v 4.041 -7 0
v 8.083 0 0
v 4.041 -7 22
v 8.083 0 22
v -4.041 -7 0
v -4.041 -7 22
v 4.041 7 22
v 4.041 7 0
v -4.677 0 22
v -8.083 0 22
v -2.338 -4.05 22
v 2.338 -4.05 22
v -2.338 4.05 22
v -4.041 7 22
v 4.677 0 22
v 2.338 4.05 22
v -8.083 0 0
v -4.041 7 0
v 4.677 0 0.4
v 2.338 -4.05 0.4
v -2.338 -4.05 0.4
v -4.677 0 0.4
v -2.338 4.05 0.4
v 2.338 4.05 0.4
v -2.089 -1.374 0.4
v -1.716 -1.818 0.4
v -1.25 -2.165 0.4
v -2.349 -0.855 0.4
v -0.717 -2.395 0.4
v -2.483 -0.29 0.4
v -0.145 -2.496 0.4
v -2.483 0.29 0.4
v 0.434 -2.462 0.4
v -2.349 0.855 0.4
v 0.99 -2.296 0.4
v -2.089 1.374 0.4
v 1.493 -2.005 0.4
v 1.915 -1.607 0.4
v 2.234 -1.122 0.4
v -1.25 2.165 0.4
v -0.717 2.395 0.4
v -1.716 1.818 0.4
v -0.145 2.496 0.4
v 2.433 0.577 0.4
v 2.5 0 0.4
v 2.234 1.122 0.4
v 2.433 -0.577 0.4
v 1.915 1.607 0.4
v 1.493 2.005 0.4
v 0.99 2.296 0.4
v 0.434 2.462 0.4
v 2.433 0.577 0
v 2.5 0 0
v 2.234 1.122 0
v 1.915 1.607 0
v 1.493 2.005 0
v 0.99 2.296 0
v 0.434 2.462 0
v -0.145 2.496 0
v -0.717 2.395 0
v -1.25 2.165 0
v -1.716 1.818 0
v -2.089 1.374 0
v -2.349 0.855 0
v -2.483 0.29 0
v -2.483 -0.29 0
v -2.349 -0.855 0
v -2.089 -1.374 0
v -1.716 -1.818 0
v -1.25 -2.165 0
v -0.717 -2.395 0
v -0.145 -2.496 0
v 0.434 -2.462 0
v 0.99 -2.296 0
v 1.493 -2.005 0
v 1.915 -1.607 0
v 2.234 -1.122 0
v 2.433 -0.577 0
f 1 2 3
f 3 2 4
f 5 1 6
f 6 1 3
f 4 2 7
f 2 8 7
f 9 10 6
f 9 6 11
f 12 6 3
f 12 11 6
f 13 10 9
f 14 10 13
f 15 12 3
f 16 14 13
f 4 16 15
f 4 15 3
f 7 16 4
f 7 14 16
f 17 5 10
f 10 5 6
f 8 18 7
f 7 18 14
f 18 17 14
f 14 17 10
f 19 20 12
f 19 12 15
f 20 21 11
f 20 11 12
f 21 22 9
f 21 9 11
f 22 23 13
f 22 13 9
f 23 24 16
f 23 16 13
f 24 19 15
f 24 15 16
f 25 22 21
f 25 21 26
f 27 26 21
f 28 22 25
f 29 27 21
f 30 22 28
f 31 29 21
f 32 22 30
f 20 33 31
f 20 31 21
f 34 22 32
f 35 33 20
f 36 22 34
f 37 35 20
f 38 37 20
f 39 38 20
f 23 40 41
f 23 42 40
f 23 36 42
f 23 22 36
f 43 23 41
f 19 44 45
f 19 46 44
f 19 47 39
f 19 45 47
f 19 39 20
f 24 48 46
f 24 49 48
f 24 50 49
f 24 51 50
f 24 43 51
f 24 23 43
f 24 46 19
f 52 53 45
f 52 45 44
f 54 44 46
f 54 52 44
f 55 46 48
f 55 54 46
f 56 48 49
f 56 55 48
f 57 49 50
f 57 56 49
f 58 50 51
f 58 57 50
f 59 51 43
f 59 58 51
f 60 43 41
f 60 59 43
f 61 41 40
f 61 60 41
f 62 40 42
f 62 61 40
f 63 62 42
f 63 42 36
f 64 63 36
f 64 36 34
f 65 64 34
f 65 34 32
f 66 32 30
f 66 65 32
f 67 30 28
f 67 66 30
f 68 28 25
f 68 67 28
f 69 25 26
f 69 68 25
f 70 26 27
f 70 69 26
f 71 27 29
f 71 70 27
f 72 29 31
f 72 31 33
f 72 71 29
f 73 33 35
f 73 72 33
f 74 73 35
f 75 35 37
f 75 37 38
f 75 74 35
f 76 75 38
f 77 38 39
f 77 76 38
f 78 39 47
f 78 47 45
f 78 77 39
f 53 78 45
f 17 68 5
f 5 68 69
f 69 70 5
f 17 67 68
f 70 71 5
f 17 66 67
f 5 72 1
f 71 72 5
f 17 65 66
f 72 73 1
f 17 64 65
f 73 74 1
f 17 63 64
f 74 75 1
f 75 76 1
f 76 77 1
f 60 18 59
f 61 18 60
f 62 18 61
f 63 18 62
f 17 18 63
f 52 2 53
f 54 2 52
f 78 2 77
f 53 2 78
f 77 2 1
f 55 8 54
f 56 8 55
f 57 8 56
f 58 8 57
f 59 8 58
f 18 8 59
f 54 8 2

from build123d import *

# Parameters (mm, degrees)
PAD_DEPTH     = 22
SKETCH001_R   = 5
SKETCH001_R_2 = 2.5
PAD001_DEPTH  = 0.4


with BuildPart() as part:
    # Sketch → Pad (new body)
    with BuildSketch(Plane.XY):
        Polygon((4.041452, -7), (8.082904, 0), (4.041452, 7), (-4.041452, 7), (-8.082904, 0), (-4.041452, -7), align=None)
        Polygon((4.676537, 0), (2.338269, 4.05), (-2.338269, 4.05), (-4.676537, 0), (-2.338269, -4.05), (2.338269, -4.05), align=None, mode=Mode.SUBTRACT)
    extrude(amount=PAD_DEPTH)

    # Sketch001 → Pad001 (join)
    with BuildSketch(Plane.XY):
        Circle(SKETCH001_R)
        Circle(SKETCH001_R_2, mode=Mode.SUBTRACT)
    extrude(amount=PAD001_DEPTH)


solid = part.part
